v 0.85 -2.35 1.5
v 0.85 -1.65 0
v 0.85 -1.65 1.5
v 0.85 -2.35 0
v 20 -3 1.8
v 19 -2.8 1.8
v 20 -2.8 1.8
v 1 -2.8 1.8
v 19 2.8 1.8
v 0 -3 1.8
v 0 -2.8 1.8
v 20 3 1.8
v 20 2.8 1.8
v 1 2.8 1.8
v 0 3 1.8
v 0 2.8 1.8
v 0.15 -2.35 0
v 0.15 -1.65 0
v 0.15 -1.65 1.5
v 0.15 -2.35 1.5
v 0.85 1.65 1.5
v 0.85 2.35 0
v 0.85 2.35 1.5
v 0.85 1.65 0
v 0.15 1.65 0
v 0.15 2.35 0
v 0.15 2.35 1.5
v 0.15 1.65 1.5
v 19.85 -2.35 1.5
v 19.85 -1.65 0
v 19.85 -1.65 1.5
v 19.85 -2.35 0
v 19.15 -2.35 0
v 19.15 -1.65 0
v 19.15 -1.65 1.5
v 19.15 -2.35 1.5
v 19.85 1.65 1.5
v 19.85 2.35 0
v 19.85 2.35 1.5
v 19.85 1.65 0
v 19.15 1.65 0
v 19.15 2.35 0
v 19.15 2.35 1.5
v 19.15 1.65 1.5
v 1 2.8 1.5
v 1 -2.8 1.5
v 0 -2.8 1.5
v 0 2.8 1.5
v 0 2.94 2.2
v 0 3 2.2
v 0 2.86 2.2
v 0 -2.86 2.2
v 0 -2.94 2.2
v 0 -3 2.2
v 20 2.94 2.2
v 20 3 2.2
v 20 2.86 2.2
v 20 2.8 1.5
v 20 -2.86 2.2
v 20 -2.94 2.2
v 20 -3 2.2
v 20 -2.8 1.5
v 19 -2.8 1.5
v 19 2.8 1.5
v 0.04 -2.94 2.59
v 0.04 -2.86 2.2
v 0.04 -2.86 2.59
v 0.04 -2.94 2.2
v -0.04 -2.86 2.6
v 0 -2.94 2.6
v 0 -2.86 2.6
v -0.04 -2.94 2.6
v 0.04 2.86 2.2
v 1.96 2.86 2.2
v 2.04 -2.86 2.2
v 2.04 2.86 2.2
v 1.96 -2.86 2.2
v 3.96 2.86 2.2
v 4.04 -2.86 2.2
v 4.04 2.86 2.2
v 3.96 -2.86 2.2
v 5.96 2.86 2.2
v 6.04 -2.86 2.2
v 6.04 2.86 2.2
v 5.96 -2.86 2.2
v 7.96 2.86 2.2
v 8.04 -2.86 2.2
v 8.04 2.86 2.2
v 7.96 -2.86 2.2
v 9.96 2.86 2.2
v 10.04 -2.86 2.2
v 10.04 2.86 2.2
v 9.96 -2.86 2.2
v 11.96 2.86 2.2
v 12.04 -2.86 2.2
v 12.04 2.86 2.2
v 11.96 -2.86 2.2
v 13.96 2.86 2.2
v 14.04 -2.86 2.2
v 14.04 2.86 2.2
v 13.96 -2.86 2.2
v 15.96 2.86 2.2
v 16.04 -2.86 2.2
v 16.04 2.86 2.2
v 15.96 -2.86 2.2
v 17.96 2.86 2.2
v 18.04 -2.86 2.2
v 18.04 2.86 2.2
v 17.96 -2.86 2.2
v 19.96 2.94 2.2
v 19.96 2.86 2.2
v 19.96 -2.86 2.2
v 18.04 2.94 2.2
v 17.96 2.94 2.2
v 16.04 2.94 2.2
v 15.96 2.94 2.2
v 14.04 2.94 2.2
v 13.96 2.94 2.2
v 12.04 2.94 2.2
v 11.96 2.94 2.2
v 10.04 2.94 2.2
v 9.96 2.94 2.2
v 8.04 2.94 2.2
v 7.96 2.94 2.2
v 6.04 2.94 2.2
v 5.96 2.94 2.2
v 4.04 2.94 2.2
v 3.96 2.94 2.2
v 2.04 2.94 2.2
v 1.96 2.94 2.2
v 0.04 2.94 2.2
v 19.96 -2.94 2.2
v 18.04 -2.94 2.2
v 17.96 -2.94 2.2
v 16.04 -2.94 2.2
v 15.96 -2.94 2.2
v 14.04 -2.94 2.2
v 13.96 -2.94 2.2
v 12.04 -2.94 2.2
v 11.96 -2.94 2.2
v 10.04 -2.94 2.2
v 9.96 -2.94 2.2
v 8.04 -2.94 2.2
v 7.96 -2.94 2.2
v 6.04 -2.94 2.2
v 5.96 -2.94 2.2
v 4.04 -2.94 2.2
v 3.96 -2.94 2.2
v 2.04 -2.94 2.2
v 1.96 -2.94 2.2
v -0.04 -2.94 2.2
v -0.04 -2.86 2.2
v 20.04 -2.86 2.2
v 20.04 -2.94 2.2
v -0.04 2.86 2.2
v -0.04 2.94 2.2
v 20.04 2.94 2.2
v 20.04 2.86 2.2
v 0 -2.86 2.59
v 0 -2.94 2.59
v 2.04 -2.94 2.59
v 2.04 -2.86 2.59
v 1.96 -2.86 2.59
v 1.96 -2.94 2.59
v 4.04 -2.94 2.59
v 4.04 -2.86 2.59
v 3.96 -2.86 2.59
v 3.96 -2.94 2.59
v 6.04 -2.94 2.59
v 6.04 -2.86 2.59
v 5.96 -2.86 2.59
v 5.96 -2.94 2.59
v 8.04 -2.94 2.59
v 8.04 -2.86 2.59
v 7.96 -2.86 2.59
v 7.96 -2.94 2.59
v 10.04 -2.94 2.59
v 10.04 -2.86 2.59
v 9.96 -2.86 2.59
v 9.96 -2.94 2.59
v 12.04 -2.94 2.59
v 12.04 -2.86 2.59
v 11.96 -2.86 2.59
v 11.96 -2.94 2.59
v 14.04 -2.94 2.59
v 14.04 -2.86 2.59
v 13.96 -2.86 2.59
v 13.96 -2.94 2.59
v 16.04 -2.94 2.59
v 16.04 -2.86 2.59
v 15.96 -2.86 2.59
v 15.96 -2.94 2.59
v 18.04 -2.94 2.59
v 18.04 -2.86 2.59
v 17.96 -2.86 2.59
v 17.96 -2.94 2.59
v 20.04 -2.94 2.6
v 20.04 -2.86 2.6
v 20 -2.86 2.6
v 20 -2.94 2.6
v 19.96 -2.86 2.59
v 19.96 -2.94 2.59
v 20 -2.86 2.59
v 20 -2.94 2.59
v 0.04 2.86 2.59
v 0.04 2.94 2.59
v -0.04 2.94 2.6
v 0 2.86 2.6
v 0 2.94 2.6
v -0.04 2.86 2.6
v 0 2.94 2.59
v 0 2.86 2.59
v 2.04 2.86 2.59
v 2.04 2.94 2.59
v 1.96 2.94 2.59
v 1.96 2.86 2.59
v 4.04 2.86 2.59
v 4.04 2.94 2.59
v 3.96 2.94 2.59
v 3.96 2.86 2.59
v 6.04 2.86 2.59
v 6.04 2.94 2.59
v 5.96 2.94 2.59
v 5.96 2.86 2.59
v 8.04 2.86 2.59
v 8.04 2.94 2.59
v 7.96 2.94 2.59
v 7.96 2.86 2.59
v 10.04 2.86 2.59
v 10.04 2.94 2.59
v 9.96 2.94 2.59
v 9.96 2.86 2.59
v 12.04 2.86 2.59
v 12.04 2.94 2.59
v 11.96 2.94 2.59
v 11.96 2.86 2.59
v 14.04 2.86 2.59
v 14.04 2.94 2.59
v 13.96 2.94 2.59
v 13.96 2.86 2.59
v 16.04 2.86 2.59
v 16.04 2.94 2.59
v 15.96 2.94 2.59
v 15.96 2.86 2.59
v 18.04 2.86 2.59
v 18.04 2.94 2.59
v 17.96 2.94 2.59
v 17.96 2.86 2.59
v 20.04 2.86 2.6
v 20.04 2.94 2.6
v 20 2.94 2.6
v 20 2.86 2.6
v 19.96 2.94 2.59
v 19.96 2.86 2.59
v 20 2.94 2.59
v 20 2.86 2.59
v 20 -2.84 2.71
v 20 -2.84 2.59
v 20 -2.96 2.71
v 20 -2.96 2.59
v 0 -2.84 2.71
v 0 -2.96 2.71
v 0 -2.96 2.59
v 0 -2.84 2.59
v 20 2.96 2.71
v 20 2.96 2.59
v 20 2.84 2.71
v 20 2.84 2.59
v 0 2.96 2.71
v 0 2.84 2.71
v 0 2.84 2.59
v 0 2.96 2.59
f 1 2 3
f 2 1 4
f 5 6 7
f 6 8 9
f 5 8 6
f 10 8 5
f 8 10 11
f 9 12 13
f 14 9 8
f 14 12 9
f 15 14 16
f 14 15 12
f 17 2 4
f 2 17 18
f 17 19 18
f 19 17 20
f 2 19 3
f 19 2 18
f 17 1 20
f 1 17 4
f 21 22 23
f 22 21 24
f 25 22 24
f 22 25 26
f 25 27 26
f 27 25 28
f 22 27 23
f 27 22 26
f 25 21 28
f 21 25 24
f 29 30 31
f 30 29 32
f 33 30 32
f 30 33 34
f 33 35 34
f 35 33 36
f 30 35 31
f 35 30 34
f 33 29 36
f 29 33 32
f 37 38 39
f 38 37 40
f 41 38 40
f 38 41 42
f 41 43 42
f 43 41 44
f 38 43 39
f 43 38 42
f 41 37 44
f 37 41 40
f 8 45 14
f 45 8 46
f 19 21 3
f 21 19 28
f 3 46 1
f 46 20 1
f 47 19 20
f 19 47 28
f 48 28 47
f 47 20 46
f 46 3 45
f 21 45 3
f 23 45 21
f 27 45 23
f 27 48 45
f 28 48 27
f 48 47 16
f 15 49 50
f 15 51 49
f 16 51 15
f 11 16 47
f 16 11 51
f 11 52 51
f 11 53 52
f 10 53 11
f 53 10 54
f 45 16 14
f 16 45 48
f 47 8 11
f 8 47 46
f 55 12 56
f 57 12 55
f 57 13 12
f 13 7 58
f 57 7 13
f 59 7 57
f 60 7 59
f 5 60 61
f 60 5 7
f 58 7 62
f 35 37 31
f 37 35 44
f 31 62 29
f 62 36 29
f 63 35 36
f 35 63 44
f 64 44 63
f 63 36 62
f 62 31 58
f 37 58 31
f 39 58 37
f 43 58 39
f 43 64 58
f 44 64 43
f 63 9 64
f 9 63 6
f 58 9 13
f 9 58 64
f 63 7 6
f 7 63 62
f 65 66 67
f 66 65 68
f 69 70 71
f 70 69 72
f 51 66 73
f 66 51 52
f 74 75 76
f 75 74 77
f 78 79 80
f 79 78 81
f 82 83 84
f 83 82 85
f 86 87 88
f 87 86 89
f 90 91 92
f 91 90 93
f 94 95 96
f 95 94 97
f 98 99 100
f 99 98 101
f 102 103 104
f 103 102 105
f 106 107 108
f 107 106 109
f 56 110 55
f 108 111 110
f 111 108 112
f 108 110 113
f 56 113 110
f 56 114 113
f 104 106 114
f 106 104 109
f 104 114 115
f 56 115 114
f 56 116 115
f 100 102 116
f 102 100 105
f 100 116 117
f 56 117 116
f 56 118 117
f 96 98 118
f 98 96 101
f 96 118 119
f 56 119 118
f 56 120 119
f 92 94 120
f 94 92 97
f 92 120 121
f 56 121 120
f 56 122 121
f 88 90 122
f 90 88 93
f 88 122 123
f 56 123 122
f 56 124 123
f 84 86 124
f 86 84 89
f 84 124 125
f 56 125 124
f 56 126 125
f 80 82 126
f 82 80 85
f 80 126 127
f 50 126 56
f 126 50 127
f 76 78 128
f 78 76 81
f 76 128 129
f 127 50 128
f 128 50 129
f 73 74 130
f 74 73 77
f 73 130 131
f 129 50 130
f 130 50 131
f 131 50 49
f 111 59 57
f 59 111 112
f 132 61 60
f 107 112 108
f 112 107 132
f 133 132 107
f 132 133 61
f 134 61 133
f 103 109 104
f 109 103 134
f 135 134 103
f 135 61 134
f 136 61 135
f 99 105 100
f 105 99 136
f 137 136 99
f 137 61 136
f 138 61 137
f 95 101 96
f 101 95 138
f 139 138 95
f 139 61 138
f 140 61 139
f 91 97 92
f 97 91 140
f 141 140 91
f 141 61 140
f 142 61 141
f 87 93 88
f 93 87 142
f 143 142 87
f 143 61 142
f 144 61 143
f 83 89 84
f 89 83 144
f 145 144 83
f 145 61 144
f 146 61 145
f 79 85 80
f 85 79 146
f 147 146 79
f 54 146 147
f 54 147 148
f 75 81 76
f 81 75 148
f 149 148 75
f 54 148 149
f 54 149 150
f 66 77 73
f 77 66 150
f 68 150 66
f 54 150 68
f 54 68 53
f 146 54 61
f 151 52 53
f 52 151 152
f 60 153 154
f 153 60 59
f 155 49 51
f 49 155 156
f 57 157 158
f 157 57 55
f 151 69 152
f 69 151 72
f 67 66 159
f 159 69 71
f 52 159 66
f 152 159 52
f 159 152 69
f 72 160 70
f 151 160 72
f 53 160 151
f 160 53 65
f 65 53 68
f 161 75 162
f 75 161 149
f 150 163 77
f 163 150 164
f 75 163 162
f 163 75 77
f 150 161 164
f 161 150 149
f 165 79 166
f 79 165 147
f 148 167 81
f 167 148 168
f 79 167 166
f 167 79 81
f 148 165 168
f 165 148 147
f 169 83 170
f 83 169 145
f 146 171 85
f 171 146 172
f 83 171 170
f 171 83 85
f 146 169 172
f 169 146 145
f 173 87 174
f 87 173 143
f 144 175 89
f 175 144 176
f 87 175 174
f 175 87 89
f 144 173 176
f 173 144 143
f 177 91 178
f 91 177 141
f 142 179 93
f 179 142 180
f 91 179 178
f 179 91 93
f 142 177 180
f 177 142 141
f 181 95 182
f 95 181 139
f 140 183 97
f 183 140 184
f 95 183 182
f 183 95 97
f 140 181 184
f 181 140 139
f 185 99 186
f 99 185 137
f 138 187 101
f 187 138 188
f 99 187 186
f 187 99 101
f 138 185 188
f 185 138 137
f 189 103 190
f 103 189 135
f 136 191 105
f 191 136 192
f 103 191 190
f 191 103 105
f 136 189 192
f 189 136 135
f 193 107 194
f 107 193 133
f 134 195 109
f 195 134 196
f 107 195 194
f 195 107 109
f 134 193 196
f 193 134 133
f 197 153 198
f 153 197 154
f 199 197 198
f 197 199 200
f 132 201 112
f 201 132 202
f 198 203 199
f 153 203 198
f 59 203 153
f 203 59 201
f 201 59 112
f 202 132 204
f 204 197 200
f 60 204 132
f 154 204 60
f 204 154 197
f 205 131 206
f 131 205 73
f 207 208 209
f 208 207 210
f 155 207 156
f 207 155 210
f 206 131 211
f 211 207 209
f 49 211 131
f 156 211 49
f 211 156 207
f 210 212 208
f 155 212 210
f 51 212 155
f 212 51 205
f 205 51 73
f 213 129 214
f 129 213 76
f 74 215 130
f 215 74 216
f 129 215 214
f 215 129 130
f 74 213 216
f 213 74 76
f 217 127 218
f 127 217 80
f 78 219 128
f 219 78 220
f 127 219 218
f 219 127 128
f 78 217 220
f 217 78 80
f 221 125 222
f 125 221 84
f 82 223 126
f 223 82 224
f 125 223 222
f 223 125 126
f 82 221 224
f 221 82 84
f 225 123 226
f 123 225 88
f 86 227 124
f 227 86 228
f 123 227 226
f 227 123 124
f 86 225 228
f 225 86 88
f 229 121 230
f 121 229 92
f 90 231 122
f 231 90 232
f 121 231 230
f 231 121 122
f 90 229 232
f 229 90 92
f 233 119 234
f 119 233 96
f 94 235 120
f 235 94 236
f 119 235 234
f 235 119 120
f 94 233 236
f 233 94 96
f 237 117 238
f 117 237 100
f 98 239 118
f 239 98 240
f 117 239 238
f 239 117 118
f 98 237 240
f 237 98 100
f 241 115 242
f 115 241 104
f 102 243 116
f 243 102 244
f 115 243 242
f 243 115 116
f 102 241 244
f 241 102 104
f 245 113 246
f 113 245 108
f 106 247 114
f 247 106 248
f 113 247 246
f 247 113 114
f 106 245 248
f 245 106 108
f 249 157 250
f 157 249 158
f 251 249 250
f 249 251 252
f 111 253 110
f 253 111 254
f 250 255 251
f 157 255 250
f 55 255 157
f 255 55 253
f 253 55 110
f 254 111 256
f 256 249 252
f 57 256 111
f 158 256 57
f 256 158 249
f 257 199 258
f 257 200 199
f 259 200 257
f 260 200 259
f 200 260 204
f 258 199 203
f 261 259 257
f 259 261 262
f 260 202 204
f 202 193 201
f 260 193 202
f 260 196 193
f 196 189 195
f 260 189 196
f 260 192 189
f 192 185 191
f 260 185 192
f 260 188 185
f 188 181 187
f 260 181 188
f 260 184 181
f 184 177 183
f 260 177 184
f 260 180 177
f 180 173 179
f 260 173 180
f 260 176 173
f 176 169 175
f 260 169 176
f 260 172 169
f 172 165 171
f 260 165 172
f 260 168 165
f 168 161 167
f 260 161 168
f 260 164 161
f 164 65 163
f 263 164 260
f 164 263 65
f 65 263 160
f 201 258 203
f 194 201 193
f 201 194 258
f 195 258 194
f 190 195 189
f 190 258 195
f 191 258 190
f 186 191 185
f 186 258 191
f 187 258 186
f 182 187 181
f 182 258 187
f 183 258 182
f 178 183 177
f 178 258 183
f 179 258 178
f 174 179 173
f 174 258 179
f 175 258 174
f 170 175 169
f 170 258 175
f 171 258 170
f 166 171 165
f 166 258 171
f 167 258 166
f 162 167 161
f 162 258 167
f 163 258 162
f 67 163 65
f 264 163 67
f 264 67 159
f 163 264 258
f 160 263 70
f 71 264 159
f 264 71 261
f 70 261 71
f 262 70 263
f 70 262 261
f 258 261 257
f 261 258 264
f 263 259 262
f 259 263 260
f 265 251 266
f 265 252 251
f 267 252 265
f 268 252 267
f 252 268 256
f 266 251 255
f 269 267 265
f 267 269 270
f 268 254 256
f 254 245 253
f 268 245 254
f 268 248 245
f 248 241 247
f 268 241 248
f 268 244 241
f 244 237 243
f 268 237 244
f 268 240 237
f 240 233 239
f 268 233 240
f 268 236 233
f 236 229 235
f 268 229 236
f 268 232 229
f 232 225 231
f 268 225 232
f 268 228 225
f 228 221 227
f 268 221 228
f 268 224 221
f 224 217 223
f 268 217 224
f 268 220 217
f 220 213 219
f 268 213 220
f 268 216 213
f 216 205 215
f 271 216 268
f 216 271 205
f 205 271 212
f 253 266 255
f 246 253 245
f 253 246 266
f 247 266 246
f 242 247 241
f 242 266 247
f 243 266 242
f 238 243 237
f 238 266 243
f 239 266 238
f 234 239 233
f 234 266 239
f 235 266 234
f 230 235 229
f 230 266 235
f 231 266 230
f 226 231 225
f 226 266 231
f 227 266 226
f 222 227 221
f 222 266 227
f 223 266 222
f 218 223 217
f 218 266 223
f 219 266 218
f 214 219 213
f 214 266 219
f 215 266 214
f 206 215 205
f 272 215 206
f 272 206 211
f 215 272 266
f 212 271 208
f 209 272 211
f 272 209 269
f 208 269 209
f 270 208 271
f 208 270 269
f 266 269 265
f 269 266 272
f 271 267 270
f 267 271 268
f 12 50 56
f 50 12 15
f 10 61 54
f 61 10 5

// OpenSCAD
// Coordinates are metres, including in exported STL. Do not scale by 0.001.
span = 20;
deckWidth = 6;
deckHeight = 2;
module boxAt(position, dimensions) {
    translate(position) cube(dimensions, center=true);
}
union() {
    boxAt([span/2,0,deckHeight],[span,deckWidth,0.4]);
    for (x=[0.5,span-0.5]) {
        for (y=[-2,2]) boxAt([x,y,0.9],[0.7,0.7,1.8]);
        boxAt([x,0,1.65],[1,5.6,0.3]);
    }
    for (y=[-2.9,2.9]) {
        boxAt([span/2,y,2.65],[span,0.12,0.12]);
        for (x=[0:2:span]) boxAt([x,y,2.4],[0.08,0.08,0.4]);
    }
}
